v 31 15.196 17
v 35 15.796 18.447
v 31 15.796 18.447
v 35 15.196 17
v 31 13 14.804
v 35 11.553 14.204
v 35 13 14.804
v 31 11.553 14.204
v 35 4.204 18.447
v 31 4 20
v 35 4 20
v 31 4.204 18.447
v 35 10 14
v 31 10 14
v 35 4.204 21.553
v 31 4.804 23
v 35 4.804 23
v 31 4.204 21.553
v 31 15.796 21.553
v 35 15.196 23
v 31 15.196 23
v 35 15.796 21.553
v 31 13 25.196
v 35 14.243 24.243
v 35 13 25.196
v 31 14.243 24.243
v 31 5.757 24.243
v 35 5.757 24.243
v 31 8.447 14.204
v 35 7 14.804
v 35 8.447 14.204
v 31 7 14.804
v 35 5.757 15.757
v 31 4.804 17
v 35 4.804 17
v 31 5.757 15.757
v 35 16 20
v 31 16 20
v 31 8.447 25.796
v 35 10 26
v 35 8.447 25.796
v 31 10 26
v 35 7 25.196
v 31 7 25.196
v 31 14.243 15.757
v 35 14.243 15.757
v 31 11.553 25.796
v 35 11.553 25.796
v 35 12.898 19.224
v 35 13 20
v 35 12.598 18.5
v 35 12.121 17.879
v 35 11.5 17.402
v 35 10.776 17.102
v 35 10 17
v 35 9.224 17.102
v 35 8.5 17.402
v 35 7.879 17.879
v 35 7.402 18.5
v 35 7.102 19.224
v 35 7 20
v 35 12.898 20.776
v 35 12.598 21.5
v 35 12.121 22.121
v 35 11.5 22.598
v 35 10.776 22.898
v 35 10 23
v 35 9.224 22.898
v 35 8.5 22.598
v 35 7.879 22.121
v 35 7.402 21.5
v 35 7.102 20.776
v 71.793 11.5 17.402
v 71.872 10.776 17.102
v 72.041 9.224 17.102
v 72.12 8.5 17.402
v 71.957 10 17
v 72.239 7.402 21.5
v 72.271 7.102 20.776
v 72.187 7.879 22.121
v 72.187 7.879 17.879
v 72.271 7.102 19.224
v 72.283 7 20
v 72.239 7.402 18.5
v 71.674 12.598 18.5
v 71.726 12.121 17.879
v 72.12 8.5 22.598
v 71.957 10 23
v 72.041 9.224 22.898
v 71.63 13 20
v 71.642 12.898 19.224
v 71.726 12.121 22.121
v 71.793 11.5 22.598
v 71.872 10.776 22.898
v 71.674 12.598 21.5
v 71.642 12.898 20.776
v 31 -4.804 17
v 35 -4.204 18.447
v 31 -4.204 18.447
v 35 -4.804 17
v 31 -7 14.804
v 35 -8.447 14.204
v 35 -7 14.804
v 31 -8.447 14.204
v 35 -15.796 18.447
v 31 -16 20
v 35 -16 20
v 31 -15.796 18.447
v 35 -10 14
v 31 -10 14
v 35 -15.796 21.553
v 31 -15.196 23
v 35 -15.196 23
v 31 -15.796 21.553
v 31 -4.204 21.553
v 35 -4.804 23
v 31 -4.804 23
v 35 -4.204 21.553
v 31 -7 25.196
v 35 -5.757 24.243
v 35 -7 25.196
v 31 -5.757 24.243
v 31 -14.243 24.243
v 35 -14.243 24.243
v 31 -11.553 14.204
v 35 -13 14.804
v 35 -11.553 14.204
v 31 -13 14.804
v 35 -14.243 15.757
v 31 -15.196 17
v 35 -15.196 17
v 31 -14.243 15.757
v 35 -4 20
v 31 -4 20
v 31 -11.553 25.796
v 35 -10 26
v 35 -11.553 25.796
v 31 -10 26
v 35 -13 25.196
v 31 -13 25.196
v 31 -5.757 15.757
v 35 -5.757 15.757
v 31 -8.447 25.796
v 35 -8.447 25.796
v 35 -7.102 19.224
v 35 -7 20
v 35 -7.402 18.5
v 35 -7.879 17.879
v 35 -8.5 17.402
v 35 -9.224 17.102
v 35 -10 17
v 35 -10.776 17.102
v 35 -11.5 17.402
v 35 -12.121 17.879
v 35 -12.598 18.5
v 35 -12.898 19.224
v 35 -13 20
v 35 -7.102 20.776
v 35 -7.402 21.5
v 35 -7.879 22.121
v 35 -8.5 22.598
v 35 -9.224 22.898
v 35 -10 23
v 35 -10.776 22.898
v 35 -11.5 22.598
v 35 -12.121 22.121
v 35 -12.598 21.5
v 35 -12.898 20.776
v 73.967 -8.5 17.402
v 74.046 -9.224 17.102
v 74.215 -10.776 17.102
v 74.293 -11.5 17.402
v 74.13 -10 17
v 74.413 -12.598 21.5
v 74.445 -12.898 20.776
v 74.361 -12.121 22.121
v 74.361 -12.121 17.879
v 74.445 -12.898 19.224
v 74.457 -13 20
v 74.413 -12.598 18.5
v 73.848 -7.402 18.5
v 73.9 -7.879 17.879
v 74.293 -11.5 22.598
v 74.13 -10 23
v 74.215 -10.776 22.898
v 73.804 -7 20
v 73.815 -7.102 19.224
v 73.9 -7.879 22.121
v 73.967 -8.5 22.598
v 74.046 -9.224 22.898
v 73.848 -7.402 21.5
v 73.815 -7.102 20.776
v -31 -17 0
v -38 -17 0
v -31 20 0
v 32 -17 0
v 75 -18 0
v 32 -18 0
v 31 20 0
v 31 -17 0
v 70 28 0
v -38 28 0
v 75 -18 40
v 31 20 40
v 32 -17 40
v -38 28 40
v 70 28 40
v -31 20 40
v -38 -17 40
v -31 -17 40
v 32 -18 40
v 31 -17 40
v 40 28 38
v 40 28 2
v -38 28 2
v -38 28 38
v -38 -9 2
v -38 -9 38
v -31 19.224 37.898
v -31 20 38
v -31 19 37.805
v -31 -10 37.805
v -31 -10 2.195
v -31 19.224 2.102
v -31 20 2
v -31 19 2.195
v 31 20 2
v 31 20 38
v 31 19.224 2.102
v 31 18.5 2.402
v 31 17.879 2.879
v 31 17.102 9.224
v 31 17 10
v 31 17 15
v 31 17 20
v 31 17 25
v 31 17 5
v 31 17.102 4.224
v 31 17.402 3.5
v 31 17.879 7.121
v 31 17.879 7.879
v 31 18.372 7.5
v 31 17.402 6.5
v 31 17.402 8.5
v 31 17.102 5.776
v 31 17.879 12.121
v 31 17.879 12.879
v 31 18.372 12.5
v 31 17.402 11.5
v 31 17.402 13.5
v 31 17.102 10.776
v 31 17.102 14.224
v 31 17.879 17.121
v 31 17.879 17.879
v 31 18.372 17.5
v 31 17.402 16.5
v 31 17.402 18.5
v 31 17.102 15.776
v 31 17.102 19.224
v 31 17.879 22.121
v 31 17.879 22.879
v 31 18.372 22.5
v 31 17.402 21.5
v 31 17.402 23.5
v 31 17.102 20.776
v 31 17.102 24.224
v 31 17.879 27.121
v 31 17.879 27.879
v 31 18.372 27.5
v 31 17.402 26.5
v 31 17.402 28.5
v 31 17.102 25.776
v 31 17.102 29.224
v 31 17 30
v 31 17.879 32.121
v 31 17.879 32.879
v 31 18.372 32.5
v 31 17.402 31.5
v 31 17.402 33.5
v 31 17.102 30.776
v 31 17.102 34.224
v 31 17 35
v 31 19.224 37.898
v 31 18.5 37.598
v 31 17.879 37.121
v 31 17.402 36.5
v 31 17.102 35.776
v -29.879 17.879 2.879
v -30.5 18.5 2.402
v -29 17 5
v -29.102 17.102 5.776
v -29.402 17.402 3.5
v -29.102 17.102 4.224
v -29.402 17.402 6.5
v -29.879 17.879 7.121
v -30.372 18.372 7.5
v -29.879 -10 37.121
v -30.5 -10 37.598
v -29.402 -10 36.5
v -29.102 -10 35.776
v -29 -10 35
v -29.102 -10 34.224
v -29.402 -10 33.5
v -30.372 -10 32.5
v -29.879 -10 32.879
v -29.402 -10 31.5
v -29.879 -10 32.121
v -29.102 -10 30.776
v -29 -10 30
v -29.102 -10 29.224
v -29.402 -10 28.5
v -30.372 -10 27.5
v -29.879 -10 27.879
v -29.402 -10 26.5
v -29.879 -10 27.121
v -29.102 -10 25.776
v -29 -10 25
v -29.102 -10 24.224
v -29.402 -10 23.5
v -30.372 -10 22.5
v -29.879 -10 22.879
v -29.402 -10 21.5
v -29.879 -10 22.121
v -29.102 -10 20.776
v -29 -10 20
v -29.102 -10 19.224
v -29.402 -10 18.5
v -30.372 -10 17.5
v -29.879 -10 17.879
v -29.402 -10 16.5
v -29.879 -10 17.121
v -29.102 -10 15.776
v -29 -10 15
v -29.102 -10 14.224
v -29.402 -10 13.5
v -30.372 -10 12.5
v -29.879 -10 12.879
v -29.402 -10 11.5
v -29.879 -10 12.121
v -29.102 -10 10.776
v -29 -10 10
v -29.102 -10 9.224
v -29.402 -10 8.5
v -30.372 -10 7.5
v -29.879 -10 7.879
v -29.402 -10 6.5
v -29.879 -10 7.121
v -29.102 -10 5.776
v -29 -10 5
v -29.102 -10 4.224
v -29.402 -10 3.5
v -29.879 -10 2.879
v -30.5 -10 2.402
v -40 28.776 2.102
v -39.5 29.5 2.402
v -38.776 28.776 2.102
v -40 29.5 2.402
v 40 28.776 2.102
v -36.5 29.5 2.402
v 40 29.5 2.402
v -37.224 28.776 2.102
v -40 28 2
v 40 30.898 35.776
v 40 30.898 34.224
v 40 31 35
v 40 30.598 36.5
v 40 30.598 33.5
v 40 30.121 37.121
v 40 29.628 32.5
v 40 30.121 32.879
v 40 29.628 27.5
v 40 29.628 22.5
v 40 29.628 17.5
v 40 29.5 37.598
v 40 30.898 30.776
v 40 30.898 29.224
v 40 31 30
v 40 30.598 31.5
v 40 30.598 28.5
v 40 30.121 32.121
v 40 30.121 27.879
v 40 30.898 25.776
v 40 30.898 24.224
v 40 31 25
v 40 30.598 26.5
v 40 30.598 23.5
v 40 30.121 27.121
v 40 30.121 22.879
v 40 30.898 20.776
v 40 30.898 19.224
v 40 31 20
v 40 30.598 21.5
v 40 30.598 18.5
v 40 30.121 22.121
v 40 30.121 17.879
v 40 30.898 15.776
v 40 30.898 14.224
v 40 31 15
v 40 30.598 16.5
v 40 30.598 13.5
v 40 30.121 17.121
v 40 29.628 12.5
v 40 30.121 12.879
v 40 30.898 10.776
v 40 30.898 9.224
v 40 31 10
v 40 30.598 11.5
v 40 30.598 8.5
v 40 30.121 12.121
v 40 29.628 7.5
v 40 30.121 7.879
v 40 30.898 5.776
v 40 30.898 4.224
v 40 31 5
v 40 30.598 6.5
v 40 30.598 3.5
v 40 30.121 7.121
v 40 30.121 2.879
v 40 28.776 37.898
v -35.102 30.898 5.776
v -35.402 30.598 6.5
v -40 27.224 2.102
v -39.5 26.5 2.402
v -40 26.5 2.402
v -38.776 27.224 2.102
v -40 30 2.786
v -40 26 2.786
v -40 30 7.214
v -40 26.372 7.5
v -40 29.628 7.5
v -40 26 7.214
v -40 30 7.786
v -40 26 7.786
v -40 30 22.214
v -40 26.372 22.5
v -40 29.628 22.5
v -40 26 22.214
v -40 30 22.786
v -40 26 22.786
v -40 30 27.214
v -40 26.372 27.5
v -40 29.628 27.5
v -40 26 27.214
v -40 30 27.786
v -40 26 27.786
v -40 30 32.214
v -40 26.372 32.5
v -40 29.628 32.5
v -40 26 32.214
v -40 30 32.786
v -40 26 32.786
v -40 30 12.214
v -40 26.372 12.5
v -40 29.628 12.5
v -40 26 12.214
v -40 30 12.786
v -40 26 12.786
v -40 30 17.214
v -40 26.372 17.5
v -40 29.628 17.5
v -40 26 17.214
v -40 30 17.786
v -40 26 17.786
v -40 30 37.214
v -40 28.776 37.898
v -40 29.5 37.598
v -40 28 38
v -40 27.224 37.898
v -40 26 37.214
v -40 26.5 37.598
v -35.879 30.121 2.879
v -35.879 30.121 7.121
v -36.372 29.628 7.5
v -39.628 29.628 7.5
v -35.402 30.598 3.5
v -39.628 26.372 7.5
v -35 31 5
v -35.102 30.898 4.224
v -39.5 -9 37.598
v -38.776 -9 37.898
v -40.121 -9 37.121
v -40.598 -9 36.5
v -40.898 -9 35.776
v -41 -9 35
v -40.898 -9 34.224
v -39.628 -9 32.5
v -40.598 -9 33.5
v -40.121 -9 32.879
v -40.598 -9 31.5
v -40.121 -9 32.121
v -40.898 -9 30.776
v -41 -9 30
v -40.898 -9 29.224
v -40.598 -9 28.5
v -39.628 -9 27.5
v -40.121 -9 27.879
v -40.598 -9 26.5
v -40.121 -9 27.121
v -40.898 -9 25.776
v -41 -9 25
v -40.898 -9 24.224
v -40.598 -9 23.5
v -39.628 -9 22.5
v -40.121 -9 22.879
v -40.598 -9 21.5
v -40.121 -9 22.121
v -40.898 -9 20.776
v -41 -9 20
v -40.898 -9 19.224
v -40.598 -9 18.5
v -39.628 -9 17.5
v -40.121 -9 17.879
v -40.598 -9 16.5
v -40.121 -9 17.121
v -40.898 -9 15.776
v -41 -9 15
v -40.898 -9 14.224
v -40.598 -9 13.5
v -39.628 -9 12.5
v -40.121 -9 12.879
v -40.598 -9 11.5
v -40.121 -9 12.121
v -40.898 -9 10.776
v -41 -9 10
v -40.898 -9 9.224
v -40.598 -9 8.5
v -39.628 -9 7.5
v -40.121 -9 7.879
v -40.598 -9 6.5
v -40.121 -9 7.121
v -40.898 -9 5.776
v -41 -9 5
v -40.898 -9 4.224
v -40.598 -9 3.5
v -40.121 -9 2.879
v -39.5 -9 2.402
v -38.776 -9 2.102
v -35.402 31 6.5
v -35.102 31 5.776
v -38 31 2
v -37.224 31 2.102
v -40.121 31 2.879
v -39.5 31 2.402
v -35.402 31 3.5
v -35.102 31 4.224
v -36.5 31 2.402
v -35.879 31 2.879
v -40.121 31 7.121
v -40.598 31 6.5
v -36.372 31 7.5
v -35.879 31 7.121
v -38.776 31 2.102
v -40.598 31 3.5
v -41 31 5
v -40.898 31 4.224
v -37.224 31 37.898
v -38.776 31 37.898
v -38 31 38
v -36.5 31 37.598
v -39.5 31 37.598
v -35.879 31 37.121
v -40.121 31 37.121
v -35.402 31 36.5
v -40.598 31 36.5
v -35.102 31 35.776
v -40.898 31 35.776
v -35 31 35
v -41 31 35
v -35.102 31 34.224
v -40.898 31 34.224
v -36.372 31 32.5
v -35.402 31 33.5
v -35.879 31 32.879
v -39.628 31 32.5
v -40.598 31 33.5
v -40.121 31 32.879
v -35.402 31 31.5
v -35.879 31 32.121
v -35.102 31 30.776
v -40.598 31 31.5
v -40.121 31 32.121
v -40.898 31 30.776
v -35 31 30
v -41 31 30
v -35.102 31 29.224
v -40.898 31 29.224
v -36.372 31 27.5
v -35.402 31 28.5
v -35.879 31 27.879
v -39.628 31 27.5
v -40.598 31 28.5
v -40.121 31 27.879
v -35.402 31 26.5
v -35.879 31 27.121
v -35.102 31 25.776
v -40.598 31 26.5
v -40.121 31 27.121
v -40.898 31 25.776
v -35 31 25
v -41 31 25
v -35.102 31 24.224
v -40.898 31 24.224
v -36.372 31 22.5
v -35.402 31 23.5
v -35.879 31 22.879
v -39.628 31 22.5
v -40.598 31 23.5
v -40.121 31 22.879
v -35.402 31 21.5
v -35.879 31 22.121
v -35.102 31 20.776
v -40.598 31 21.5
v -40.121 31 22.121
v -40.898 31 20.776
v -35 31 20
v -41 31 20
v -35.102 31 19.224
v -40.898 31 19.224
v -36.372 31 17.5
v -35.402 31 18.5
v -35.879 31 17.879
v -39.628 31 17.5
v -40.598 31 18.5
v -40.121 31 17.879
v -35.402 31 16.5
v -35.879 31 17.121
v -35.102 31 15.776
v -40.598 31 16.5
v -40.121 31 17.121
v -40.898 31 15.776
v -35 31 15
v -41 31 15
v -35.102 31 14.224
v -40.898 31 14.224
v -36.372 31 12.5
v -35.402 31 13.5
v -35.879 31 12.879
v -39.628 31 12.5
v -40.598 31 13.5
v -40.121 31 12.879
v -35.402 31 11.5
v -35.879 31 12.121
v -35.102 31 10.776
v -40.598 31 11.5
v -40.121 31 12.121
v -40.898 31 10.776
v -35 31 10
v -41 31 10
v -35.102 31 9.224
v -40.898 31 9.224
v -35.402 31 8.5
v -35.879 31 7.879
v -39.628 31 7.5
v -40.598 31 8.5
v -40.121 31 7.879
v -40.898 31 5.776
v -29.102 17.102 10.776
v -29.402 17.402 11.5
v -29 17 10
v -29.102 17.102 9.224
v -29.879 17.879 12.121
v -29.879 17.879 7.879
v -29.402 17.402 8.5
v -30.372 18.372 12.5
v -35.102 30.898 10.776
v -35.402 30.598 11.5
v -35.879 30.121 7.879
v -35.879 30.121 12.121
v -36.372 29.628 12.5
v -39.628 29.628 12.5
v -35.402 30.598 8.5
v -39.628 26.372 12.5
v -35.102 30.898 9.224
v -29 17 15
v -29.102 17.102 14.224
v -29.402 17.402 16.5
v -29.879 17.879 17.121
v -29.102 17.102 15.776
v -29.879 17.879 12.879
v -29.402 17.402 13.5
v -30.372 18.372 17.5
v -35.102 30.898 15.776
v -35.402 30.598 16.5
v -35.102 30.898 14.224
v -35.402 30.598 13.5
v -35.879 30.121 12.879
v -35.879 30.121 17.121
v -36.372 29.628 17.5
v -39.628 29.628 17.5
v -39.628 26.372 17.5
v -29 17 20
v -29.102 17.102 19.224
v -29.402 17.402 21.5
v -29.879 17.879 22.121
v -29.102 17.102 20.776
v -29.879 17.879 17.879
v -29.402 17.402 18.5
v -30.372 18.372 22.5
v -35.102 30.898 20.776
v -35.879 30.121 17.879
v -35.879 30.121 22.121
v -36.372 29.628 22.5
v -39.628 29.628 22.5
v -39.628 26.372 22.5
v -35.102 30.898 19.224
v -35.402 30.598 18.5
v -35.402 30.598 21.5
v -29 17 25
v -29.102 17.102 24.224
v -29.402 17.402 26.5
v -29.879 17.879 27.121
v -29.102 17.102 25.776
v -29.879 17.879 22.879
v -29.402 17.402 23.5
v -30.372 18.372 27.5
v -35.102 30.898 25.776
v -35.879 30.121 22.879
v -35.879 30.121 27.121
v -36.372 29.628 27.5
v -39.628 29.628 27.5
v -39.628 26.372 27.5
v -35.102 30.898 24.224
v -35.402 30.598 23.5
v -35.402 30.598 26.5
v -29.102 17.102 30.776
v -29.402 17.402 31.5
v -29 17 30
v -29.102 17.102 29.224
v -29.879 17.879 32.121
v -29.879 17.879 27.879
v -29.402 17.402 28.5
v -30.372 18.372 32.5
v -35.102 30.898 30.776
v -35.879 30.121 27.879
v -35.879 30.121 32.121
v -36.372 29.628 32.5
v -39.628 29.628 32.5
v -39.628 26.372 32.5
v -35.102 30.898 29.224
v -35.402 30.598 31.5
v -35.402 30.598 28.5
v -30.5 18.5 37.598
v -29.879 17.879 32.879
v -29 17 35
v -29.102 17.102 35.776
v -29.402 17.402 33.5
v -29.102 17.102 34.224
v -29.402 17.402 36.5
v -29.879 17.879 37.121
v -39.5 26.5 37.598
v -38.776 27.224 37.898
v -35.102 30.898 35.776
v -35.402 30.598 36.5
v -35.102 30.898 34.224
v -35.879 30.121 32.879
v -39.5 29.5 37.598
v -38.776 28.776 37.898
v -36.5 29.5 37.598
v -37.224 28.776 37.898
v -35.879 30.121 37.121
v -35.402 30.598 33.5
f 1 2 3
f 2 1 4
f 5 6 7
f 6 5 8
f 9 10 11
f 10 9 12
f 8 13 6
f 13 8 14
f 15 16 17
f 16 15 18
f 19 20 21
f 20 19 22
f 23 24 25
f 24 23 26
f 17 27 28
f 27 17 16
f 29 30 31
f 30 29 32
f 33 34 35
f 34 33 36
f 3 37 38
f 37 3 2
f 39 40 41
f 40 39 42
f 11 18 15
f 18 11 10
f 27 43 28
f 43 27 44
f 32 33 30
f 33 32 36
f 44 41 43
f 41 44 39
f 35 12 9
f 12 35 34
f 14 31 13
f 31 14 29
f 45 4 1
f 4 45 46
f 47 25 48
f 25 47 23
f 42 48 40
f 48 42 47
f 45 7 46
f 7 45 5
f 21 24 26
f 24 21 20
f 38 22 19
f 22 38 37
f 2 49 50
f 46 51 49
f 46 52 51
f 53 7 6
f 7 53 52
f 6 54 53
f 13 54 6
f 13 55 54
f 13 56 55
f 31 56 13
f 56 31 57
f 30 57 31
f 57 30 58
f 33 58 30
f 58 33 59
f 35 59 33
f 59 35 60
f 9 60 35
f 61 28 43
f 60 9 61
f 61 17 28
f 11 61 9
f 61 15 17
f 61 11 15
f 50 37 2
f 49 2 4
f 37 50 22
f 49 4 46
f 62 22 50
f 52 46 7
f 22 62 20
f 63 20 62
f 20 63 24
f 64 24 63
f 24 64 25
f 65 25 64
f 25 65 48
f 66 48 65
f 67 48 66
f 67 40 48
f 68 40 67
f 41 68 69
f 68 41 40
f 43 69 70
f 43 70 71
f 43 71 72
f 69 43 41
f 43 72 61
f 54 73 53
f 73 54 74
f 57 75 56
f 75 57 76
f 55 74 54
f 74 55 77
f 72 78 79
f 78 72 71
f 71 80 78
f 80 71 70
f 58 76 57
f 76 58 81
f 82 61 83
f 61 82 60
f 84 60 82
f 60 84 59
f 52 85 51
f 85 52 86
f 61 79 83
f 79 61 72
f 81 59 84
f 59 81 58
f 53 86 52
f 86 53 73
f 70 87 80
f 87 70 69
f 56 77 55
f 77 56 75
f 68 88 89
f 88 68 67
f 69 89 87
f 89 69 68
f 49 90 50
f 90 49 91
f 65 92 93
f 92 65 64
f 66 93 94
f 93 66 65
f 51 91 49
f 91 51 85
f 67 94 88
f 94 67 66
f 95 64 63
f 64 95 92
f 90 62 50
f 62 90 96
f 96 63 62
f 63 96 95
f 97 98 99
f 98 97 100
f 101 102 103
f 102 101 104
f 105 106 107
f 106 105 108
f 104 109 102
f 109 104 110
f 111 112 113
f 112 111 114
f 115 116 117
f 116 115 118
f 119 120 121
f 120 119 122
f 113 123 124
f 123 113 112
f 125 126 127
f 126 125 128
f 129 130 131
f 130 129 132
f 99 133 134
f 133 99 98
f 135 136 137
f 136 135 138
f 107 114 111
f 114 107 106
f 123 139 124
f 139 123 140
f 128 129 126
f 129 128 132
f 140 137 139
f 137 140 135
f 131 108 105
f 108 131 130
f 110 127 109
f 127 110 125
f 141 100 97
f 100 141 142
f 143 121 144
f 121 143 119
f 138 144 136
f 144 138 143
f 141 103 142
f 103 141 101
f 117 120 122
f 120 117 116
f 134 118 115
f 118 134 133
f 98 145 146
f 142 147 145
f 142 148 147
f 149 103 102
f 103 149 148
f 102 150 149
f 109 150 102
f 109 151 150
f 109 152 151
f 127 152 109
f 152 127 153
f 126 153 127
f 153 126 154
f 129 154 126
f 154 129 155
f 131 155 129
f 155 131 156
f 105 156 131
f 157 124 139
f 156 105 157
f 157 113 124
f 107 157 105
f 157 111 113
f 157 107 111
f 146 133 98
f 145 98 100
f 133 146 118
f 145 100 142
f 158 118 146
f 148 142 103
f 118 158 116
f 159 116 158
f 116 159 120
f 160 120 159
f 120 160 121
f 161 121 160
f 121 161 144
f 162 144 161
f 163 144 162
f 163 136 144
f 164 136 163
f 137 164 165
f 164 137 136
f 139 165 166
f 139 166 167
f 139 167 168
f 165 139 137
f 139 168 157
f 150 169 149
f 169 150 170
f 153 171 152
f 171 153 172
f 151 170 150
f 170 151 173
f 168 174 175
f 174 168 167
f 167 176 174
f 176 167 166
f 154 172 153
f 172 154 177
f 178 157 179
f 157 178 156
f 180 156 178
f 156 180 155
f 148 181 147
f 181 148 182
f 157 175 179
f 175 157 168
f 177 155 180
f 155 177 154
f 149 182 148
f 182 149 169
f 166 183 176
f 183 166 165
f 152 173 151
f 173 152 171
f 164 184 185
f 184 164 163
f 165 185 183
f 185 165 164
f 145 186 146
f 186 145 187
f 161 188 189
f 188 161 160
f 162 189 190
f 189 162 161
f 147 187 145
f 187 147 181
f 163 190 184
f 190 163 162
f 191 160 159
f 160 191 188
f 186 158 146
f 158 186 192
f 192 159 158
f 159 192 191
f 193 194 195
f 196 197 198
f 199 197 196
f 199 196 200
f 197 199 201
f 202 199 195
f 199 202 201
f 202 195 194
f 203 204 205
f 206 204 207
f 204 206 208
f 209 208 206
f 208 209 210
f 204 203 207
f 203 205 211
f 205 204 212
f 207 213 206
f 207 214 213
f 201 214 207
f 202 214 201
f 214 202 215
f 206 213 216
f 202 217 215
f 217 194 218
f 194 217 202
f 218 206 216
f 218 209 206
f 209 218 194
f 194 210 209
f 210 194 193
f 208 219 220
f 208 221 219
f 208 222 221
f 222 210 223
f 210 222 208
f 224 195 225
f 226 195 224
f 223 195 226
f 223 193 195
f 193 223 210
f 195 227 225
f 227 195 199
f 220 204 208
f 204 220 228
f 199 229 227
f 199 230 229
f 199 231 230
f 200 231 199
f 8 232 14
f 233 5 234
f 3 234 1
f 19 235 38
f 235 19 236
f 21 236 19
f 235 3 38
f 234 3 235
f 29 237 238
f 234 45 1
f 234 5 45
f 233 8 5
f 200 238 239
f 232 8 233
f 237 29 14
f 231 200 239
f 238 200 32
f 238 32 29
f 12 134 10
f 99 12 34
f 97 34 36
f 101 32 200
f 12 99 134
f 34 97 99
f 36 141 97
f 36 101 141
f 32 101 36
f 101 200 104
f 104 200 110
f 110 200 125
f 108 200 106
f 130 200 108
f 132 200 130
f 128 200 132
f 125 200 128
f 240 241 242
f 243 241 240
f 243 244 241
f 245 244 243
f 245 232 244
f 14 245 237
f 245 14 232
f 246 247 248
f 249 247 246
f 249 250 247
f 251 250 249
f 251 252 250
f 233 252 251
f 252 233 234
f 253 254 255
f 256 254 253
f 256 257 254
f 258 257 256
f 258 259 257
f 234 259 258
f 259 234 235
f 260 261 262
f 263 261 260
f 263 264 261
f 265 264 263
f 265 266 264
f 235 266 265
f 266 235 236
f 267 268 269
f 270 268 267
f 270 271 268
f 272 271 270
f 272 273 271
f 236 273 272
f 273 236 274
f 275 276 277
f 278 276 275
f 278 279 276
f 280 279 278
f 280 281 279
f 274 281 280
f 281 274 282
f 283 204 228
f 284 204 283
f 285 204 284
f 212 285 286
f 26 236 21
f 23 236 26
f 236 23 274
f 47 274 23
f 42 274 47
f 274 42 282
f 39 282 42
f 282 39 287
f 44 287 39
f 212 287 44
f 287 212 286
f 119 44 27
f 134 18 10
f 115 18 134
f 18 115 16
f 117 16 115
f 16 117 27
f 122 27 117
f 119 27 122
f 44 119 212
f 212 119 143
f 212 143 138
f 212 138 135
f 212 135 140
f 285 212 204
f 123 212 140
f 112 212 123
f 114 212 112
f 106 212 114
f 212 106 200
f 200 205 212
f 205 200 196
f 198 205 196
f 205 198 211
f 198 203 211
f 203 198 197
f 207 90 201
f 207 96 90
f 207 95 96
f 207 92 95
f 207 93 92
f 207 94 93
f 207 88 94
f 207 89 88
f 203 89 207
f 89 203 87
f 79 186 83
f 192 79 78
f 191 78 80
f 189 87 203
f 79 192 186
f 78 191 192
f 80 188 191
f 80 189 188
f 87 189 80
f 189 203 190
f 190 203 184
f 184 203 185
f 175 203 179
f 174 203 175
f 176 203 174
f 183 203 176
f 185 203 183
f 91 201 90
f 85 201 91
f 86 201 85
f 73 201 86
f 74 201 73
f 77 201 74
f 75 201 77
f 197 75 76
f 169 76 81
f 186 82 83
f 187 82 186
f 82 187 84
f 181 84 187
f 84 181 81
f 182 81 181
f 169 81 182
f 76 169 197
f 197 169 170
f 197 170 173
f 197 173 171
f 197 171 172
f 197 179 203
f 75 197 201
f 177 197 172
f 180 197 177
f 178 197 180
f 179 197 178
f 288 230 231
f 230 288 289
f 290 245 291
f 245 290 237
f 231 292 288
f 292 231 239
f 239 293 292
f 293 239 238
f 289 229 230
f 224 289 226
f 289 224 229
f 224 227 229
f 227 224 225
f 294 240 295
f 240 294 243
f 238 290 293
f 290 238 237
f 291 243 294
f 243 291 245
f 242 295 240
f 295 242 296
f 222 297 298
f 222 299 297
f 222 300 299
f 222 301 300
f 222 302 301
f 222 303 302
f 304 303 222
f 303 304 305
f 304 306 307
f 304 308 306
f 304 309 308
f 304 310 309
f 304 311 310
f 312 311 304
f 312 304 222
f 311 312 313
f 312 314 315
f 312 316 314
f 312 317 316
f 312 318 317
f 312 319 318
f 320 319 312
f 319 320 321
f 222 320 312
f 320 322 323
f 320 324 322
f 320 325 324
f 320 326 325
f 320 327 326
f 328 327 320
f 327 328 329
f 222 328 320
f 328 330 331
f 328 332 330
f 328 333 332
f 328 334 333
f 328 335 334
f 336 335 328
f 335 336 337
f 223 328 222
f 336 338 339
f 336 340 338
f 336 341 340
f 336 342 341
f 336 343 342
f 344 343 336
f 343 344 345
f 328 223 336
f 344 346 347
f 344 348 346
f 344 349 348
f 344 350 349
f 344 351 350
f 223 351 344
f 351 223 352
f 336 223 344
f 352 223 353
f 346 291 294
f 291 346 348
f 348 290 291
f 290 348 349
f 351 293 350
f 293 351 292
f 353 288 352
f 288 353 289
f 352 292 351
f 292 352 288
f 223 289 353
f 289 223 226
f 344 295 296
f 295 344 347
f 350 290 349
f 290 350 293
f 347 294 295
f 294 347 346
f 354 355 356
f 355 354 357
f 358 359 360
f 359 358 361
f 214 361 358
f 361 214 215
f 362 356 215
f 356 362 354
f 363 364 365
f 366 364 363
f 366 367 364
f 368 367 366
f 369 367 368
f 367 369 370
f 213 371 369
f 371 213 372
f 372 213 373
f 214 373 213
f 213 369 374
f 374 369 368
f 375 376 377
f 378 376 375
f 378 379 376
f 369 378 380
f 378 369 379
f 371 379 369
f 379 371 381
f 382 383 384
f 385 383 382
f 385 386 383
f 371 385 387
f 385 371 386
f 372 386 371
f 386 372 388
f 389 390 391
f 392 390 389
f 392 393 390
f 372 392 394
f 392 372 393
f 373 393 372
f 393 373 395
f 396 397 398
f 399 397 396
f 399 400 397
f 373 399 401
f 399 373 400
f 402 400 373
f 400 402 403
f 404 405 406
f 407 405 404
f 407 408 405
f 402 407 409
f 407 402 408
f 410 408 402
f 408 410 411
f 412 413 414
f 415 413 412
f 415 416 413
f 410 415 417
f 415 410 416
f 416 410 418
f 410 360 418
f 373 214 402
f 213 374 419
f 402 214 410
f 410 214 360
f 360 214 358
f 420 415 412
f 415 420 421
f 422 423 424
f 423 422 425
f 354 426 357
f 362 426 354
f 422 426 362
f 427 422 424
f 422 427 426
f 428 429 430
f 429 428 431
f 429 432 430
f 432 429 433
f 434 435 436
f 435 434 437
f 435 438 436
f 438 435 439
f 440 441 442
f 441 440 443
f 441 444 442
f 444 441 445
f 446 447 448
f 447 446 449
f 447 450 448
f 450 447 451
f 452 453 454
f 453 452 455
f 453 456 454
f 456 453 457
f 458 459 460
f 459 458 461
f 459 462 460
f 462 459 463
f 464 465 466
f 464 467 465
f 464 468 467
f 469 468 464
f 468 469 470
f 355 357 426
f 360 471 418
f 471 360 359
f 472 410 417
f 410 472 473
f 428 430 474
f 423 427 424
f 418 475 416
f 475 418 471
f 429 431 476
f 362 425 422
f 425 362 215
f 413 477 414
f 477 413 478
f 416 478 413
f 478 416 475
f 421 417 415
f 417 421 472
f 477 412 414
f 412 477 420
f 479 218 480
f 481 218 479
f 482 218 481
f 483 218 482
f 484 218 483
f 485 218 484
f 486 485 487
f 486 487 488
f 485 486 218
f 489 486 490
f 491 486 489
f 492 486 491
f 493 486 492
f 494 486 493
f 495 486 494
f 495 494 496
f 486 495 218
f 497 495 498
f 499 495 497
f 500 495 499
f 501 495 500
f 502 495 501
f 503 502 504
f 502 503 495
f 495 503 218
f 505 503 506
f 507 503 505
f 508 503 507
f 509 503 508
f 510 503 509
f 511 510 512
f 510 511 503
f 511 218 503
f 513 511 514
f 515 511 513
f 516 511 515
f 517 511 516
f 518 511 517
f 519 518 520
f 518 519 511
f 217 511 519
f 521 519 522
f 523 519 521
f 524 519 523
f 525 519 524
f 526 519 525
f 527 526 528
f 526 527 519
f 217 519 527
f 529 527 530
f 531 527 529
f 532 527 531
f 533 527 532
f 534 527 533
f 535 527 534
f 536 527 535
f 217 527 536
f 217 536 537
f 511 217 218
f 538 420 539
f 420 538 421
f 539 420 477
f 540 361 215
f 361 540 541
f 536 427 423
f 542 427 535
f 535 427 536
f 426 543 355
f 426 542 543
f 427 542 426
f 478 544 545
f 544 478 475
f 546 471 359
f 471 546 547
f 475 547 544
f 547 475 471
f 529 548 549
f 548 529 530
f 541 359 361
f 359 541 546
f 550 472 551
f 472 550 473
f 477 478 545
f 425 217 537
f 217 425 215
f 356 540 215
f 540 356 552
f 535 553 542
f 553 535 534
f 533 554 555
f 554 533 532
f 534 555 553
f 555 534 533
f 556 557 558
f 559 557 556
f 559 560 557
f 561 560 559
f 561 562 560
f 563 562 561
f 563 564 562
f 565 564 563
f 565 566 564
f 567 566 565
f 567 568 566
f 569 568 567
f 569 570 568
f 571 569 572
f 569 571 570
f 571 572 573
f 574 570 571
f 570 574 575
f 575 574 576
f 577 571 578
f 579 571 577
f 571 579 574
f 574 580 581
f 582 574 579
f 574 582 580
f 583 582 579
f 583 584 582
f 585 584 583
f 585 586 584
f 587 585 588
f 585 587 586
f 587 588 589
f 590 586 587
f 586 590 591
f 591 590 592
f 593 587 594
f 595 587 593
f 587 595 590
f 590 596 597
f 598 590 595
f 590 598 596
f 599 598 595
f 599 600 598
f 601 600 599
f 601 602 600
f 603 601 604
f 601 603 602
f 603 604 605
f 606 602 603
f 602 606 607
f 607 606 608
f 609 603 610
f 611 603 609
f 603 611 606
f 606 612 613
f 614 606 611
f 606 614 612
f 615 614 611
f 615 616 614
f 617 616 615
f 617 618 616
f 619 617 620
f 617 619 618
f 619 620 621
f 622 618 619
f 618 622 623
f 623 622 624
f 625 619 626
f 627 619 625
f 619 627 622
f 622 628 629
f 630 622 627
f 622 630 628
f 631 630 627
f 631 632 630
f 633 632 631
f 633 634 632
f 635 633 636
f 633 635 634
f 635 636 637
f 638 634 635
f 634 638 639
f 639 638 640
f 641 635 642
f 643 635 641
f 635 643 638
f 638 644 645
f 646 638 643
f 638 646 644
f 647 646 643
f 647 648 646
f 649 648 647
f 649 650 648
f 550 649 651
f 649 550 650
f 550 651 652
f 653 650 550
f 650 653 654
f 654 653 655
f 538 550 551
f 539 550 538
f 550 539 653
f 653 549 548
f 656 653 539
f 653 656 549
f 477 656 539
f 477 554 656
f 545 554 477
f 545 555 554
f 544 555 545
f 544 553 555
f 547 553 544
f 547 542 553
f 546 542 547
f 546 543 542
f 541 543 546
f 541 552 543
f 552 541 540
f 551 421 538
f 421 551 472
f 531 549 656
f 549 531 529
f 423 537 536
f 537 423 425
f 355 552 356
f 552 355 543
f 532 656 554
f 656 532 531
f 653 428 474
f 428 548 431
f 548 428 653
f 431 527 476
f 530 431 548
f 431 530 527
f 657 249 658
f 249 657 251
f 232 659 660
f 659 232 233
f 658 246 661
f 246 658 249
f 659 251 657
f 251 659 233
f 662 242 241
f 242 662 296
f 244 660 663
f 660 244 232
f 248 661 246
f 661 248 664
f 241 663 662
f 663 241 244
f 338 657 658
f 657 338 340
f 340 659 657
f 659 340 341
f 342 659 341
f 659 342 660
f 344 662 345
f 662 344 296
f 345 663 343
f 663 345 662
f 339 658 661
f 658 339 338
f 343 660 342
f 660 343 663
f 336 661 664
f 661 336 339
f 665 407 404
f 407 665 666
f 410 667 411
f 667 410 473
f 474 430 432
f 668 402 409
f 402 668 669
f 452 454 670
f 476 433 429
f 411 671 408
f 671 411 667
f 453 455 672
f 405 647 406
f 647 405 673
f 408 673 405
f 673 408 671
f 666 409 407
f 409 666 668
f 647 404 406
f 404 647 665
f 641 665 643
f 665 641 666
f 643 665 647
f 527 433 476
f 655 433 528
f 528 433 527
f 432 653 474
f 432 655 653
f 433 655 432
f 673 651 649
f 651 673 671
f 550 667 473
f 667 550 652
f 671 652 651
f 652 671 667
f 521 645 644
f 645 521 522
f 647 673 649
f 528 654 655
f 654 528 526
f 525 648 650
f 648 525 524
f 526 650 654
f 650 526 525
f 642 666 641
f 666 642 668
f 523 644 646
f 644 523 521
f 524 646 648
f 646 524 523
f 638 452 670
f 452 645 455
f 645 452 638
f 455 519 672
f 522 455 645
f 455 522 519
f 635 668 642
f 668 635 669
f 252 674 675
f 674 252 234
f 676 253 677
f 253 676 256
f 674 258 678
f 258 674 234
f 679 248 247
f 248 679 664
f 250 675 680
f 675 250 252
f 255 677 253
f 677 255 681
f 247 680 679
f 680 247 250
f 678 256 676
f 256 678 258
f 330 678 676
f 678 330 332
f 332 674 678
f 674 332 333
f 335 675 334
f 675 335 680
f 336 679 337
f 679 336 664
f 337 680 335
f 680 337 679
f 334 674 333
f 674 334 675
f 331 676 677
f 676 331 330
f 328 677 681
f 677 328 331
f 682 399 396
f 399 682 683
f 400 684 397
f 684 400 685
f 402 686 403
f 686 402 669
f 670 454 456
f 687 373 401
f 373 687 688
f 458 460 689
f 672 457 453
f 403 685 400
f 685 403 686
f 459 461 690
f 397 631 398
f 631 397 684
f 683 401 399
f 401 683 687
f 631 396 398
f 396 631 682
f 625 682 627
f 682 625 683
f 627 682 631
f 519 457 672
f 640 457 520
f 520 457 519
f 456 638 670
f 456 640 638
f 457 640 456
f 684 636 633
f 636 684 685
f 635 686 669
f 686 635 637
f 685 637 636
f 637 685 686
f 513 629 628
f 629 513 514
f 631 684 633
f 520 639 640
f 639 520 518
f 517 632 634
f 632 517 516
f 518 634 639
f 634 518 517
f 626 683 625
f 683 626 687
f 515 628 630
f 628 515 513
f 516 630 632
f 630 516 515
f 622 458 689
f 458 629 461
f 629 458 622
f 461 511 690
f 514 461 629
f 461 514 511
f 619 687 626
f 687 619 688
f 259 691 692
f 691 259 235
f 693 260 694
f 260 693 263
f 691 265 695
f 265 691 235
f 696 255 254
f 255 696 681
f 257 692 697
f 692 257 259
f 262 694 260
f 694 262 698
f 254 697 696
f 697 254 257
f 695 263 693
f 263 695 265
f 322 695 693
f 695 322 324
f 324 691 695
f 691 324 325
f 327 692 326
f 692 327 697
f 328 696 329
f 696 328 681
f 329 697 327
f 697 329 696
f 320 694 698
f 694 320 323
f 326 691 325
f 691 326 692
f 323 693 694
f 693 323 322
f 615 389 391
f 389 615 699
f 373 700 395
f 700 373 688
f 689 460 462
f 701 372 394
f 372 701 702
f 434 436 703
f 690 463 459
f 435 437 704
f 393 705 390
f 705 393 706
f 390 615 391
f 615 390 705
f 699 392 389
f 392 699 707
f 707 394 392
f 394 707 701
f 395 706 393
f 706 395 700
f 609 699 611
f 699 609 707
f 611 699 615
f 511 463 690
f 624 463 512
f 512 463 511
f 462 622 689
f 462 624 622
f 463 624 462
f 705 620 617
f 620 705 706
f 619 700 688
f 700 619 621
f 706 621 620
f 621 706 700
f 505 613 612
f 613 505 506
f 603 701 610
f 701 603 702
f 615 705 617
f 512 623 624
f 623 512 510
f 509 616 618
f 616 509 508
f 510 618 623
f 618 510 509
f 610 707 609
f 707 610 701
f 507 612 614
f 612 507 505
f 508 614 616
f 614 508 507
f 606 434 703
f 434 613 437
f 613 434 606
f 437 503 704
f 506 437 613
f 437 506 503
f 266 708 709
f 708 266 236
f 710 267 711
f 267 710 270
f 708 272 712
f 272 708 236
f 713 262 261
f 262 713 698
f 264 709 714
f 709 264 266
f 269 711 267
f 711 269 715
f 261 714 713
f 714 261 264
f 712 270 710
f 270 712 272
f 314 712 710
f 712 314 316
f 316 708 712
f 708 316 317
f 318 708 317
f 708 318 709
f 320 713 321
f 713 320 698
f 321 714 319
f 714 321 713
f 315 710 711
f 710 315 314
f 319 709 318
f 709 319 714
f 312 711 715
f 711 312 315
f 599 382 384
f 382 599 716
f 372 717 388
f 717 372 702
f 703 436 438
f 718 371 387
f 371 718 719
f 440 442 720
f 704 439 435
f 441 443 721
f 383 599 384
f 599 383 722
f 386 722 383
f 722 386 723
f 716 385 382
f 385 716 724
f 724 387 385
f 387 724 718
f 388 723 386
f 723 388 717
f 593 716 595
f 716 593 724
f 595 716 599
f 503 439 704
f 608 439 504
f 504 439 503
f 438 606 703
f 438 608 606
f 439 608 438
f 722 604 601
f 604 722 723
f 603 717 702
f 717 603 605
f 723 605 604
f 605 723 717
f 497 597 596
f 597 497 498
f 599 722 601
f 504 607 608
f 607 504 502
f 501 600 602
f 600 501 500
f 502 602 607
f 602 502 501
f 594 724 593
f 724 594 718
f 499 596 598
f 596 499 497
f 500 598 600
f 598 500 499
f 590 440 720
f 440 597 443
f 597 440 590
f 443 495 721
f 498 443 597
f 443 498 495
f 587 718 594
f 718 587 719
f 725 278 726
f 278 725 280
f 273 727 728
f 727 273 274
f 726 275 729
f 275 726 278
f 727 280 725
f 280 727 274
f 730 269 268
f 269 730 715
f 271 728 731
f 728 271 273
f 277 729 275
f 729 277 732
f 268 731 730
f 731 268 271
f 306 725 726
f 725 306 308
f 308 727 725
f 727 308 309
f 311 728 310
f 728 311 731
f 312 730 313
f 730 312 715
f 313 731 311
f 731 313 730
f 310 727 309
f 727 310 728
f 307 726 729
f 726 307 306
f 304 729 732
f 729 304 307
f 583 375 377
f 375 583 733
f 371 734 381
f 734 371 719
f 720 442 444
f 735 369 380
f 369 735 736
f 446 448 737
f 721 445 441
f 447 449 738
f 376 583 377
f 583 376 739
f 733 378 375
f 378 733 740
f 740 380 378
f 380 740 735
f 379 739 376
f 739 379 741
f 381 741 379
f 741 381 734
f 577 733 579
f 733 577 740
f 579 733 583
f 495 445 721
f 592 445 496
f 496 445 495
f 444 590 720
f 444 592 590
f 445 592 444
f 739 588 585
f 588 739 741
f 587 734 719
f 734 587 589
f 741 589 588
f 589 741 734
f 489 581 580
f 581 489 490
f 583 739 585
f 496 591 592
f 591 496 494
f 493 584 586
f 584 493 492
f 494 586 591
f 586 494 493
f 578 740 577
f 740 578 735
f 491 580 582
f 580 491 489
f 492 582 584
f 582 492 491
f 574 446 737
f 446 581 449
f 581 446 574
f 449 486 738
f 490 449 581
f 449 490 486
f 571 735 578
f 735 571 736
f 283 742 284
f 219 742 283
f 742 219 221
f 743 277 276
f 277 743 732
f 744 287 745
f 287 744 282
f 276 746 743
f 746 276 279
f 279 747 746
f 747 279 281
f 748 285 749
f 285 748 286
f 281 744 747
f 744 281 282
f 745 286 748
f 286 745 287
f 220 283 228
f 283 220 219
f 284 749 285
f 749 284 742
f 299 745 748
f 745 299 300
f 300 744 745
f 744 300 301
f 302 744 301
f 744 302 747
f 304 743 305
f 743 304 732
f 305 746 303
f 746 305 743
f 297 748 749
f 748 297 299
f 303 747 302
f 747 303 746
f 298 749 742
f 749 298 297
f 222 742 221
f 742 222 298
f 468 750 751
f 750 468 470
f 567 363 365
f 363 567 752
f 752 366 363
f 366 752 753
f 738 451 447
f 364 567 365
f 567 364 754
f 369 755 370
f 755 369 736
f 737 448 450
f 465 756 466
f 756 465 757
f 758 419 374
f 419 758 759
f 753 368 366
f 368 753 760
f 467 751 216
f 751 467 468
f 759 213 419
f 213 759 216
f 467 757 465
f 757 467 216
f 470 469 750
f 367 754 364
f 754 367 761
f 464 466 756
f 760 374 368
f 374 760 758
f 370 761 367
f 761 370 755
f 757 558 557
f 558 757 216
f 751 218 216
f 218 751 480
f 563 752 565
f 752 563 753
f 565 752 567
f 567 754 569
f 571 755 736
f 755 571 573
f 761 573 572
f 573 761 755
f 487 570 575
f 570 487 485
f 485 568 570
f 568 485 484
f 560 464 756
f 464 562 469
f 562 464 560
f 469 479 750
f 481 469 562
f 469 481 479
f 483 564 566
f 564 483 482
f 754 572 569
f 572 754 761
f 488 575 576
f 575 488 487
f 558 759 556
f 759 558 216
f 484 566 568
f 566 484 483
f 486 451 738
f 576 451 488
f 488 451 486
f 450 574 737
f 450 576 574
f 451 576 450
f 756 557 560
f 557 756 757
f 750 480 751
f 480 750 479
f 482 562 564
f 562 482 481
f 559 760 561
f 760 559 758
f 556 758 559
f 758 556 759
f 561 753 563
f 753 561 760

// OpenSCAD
$fn=24;

difference() {
    linear_extrude(40) difference() {
        union() {
            translate([-38,-17,0]) square([70,45]);
            translate([0,5,0]) polygon([[32,23],[70,23],[75,-23],[35,-23],[32,-23]]);
        }
        square([62,40], true);
    }

    translate([30,10,20]) rotate([0,90,0]) bolt();
    translate([30,-10,20]) rotate([0,90,0]) bolt();
}

for(x= [1 : 7]) {
    translate([-31,20,5*x]) rotate([0,90,0]) linear_extrude(70) circle(3);
    translate([-32,20,5*x]) rotate([90,0,0]) linear_extrude(30) circle(3);
    translate([-40,28,5*x]) rotate([0,90,0]) linear_extrude(80) circle(3);
    translate([-38,31,5*x]) rotate([90,0,0]) linear_extrude(40) circle(3);
}


module bolt() {
    linear_extrude(5) circle(6);
    linear_extrude(100) circle(3);
}
